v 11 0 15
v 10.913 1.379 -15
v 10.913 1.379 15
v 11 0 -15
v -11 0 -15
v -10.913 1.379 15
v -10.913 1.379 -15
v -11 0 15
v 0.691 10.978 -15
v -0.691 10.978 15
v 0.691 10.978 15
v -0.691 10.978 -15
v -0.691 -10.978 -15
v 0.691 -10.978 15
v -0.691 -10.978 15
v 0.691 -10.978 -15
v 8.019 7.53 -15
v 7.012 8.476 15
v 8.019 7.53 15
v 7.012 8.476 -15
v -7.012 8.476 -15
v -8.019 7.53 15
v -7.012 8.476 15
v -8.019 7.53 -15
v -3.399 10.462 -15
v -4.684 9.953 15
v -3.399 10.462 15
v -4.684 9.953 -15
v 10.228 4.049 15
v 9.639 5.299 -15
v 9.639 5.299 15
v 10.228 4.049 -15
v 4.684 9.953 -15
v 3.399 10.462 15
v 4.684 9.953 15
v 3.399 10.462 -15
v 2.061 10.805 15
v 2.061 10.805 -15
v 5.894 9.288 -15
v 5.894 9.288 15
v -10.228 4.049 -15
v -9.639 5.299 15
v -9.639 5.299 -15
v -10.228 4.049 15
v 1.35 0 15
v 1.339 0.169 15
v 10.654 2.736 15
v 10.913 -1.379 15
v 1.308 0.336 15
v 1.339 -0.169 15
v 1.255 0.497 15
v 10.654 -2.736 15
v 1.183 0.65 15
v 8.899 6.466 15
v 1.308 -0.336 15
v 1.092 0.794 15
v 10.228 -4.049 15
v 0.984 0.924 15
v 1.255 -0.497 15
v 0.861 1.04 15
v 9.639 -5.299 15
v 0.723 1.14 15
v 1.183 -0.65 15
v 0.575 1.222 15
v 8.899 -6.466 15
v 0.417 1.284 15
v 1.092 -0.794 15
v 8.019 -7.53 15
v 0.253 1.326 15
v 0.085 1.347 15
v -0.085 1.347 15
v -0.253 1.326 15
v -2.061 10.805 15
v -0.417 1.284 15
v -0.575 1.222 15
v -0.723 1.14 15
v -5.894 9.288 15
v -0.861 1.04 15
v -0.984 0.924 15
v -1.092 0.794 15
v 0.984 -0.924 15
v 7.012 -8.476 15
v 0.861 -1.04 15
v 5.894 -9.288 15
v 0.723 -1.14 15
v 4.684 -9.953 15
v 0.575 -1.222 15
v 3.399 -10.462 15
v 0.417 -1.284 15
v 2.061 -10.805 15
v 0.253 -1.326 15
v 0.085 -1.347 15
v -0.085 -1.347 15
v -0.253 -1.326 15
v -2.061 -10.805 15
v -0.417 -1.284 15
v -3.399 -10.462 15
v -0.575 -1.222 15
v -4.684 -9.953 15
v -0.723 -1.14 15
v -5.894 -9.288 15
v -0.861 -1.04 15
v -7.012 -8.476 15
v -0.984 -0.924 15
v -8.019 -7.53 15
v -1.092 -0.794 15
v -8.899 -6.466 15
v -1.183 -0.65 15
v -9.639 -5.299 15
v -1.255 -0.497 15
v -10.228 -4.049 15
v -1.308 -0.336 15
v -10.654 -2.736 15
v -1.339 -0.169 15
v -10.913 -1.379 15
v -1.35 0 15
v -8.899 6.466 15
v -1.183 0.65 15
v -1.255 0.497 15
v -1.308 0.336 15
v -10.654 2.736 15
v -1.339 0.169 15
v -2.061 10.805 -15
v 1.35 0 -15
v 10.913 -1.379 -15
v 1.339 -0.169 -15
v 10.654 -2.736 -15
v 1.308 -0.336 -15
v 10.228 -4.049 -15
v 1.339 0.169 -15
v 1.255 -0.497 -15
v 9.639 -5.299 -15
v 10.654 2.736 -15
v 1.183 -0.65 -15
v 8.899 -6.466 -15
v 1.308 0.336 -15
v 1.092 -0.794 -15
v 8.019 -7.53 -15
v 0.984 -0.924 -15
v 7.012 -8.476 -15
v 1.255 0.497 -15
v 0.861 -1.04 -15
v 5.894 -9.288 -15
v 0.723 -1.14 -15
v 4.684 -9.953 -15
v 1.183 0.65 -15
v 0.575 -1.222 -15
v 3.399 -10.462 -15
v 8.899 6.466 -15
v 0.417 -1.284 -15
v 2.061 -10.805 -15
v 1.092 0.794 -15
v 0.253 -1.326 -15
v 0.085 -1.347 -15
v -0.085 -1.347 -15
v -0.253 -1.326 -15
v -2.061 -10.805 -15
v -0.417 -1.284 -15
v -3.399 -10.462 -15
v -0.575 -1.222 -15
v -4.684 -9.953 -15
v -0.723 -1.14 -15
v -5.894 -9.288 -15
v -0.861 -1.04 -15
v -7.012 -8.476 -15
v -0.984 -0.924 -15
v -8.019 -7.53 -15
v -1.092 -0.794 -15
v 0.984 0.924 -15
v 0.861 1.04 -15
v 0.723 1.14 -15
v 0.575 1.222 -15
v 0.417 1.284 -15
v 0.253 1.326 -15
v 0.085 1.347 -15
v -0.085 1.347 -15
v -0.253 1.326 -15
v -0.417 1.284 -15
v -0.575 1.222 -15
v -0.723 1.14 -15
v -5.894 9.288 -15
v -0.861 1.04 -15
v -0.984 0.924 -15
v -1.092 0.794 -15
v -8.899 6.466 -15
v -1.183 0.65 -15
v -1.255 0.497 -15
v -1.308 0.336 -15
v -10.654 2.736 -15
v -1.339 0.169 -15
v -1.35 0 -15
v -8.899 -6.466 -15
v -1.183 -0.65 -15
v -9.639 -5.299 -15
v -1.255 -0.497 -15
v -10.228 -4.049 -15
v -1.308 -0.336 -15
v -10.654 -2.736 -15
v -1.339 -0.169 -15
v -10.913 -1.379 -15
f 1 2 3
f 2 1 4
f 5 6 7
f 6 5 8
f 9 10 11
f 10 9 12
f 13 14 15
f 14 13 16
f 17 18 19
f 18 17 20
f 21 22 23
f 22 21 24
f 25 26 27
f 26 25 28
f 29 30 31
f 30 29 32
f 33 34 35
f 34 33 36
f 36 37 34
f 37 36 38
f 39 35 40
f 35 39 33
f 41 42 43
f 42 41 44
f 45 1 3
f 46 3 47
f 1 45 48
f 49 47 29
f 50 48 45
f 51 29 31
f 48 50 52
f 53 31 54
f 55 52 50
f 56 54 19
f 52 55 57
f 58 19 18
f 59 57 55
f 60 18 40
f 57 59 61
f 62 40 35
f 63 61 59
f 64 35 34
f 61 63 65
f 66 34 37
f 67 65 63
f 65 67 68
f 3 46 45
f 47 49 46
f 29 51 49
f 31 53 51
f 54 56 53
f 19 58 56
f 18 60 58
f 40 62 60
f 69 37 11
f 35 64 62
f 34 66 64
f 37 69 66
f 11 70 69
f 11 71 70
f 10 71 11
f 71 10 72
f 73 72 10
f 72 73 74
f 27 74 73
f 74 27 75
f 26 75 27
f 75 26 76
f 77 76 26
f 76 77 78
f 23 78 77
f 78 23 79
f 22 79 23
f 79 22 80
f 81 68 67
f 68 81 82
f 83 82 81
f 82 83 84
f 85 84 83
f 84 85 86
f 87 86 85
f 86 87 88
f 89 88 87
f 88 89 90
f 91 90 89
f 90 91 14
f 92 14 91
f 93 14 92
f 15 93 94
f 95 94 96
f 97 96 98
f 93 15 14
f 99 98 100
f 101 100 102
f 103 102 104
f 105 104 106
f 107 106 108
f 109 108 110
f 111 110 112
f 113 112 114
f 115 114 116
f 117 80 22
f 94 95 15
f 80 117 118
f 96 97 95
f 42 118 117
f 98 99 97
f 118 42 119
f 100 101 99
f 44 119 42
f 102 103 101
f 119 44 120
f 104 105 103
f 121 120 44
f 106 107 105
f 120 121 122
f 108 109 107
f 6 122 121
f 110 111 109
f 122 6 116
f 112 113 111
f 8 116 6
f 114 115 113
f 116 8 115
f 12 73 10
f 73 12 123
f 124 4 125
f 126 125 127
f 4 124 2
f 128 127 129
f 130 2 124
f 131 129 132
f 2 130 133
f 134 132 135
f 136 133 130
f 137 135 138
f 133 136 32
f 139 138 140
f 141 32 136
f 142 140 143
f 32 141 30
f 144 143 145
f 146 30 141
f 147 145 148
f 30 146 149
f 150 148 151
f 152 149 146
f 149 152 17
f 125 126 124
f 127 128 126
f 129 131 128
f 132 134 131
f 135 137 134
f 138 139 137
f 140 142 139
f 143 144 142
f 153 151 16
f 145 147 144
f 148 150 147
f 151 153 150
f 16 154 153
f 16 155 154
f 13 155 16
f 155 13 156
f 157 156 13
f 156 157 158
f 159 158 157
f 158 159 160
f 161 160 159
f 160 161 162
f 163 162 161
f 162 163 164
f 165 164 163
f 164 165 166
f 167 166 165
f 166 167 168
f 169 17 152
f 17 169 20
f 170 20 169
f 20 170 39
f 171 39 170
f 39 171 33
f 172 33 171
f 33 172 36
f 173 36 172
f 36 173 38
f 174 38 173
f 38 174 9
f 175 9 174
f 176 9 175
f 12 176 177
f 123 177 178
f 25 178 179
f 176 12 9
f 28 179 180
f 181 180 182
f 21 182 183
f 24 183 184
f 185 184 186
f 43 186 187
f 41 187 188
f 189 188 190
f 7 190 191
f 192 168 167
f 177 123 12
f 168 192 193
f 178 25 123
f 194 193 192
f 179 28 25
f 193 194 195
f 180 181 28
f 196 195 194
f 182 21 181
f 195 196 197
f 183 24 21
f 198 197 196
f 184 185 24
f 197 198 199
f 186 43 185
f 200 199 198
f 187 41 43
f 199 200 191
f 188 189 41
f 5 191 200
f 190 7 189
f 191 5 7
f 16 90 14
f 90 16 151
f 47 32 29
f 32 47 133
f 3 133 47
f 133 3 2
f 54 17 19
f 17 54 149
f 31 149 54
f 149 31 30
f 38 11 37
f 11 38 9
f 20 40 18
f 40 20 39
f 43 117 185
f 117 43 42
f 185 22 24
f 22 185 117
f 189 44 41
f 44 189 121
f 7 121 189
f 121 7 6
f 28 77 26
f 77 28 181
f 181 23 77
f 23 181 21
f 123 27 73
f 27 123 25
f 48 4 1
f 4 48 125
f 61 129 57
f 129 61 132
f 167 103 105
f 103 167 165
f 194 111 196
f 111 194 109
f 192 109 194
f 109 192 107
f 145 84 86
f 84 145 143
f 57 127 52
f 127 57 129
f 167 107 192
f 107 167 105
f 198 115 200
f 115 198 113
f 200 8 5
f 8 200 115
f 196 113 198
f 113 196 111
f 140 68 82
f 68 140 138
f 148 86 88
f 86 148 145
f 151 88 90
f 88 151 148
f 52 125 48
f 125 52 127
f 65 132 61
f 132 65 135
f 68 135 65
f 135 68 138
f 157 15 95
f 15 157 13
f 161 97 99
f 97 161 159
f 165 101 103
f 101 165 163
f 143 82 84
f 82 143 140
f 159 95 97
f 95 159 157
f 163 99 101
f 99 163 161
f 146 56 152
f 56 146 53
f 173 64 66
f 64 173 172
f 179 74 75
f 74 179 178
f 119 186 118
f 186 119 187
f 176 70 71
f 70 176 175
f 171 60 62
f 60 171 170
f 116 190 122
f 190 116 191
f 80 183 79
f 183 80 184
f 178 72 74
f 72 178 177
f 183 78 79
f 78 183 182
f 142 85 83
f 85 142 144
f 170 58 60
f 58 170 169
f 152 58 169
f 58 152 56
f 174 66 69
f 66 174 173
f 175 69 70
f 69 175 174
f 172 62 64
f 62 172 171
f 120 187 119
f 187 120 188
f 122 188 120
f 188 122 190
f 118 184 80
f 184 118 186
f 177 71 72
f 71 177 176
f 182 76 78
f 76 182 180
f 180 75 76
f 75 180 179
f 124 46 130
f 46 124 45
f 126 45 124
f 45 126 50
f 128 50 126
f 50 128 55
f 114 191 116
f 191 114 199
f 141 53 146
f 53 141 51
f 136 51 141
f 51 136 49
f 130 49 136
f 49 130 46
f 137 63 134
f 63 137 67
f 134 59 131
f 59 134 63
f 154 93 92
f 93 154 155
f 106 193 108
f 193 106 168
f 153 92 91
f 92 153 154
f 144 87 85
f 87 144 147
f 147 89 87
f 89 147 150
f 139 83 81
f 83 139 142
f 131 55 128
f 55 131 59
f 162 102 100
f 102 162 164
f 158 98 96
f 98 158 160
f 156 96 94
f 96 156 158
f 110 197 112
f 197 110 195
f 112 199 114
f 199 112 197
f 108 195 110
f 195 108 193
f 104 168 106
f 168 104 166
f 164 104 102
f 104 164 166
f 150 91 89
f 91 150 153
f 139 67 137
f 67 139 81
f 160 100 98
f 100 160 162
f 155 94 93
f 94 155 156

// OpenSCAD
$fn = 50;


difference() {
	union() {
		translate(v = [0, 0, -15.0000000000]) {
			cylinder(h = 30, r = 11.0000000000);
		}
	}
	union() {
		translate(v = [0, 0, -100.0000000000]) {
			cylinder(h = 200, r = 1.3500000000);
		}
	}
}
